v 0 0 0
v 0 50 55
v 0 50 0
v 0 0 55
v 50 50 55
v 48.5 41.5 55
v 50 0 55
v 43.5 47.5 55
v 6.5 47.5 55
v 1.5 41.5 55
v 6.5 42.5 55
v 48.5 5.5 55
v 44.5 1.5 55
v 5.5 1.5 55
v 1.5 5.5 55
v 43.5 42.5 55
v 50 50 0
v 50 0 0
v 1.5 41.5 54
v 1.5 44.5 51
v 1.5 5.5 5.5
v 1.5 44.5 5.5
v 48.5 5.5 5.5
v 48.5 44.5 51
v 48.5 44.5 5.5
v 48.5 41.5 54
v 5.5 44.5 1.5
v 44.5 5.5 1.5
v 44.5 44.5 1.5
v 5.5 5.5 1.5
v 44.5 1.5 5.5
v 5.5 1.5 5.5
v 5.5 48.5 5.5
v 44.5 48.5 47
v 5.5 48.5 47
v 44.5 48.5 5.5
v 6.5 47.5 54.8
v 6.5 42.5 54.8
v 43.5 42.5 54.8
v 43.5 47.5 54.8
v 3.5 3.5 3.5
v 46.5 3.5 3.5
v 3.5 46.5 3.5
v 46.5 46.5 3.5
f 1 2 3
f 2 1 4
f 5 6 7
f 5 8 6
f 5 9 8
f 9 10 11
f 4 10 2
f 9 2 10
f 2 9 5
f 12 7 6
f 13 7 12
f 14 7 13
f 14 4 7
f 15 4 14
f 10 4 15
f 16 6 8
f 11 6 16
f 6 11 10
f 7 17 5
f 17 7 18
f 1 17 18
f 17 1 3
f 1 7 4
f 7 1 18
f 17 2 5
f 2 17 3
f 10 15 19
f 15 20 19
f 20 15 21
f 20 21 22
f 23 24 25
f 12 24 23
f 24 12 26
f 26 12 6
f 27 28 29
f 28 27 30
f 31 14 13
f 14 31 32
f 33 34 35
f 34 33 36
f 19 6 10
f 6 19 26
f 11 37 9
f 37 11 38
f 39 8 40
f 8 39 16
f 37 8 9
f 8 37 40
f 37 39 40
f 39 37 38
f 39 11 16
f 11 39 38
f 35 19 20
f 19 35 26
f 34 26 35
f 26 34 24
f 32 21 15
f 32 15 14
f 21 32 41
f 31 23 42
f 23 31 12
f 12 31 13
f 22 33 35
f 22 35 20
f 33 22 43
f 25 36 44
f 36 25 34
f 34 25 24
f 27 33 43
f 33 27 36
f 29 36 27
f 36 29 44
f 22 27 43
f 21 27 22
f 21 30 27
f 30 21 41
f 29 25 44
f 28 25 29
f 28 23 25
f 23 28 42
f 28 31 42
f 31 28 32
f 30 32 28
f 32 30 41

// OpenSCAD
$fn=400;

box_sidewall_thickness=1.5;
box_ground_thickness=1.5;
box_outer_size_width=50;
box_outer_size_depth=50;
box_outer_height=55;
box_label_width=37;
box_label_height=5;
box_corner_support_size=4;

module corner_support(width, height) {
    
    label_frame=3;

    union() {

        // Create the support structure
        difference() {
            cube([width,height,height]);
            
            // Calculate the cube size for the difference by using the 
            // pythagorean theorem "Square root of a² and b²"
            tmp=sqrt((height)^2 + (height)^2);
            color("red") 
            rotate([45,0,0])
            translate([-1, 0, -tmp/2])
            cube([width+2, tmp/2, tmp]);   
        }
    }
}

module label(plate_width, plate_height, label_width, label_height, label_thickness, pos_x, pos_y, pos_z) {
    plate_thickness = 1;

    union() {
        difference() {
            // Draw a plate that is a bit larger than the label on each side
            color("blue")
            translate([pos_x, pos_y, pos_z])
            cube([plate_width, plate_height, plate_thickness]);
            // Draw a sink for the paper label
            color("green")
            translate([
                    pos_x + (plate_width - label_width)/2,
                    pos_y + (plate_height - label_height)/2,
                    pos_z + plate_thickness - label_thickness])
            cube([label_width, label_height, label_thickness+1]);
        }
        
        translate([pos_x,pos_y,pos_z - plate_height])
        corner_support(plate_width, plate_height);
    }
}

union() {
    // Create the box by differencing one cube with another one
    difference() {
        cube([box_outer_size_width, box_outer_size_depth, box_outer_height]);
        translate([box_sidewall_thickness, box_sidewall_thickness, box_ground_thickness])
        cube([box_outer_size_width - box_sidewall_thickness*2, box_outer_size_depth - box_sidewall_thickness*2,box_outer_height]);
    }

    // Add the label compoent
    label(
            box_outer_size_width - box_sidewall_thickness*2,                      // plate_width
            box_label_height+2,                                                   // plate_height (The paper label + 2mm). This will also be the height of the support structure. 
            box_label_width,                                                      // label_width
            box_label_height,                                                     // label_height
            0.2,                                                                  // label_thickness
            box_sidewall_thickness,                                               // pos_x
            box_outer_size_depth - box_label_height - 2 - box_sidewall_thickness, // pos_y
            box_outer_height - 1                                                  // pos_z
    );
    
    // Add the support structure in left bottom corner
    color("blue")
    translate([box_corner_support_size + box_sidewall_thickness,
                box_corner_support_size + box_sidewall_thickness,
                box_outer_height])
    rotate([180,90,0])
    corner_support(box_outer_height - box_ground_thickness,box_corner_support_size);
    
    // Add the support structure in right bottom corner
    color("blue")
    translate([box_outer_size_width - box_corner_support_size - box_sidewall_thickness,
                box_corner_support_size + box_sidewall_thickness,
                box_outer_height])
    rotate([90,90,0])
    corner_support(box_outer_height - box_ground_thickness,box_corner_support_size);
    
    // Add the support structure in left upper corner
    color("blue")
    translate([box_corner_support_size + box_sidewall_thickness,
                box_outer_size_depth - box_corner_support_size - box_sidewall_thickness,
                box_outer_height])
    rotate([270,90,0])
    corner_support(box_outer_height - box_ground_thickness,box_corner_support_size);
    
    // Add the support structure in right upper corner
    color("blue")
    translate([box_outer_size_width - box_corner_support_size - box_sidewall_thickness,
                box_outer_size_depth - box_corner_support_size - box_sidewall_thickness,
                box_outer_height])
    rotate([0,90,0])
    corner_support(box_outer_height - box_ground_thickness,box_corner_support_size);
    
    // Add the support structure at the ground (top)
    color("grey")
    translate([box_sidewall_thickness,
                box_outer_size_depth - box_corner_support_size - box_sidewall_thickness,
                box_corner_support_size + box_ground_thickness])
    mirror([0,0,1])
    corner_support(box_outer_size_width - box_sidewall_thickness*2,box_corner_support_size);
    
    // Add the support structure at the ground (left)
    color("grey")
    translate([box_corner_support_size + box_sidewall_thickness,
                0,
                box_corner_support_size + box_ground_thickness])
    rotate([0,0,90]) 
    mirror([0,0,1])
    corner_support(box_outer_size_depth - box_sidewall_thickness*2,box_corner_support_size);

    // Add the support structure at the ground (right)
    color("grey")
    translate([box_outer_size_width - box_corner_support_size - box_sidewall_thickness,
                + box_outer_size_depth,
                box_corner_support_size + box_ground_thickness])
    rotate([0,0,270]) 
    mirror([0,0,1])
    corner_support(box_outer_size_depth - box_sidewall_thickness*2,box_corner_support_size);

    // Add the support structure at the ground (bottom)
    color("grey")
    translate([box_outer_size_width,
                box_corner_support_size + box_sidewall_thickness,
                box_corner_support_size + box_ground_thickness])
    rotate([0,0,180]) 
    mirror([0,0,1])
    corner_support(box_outer_size_width - box_sidewall_thickness*2,box_corner_support_size);
}
